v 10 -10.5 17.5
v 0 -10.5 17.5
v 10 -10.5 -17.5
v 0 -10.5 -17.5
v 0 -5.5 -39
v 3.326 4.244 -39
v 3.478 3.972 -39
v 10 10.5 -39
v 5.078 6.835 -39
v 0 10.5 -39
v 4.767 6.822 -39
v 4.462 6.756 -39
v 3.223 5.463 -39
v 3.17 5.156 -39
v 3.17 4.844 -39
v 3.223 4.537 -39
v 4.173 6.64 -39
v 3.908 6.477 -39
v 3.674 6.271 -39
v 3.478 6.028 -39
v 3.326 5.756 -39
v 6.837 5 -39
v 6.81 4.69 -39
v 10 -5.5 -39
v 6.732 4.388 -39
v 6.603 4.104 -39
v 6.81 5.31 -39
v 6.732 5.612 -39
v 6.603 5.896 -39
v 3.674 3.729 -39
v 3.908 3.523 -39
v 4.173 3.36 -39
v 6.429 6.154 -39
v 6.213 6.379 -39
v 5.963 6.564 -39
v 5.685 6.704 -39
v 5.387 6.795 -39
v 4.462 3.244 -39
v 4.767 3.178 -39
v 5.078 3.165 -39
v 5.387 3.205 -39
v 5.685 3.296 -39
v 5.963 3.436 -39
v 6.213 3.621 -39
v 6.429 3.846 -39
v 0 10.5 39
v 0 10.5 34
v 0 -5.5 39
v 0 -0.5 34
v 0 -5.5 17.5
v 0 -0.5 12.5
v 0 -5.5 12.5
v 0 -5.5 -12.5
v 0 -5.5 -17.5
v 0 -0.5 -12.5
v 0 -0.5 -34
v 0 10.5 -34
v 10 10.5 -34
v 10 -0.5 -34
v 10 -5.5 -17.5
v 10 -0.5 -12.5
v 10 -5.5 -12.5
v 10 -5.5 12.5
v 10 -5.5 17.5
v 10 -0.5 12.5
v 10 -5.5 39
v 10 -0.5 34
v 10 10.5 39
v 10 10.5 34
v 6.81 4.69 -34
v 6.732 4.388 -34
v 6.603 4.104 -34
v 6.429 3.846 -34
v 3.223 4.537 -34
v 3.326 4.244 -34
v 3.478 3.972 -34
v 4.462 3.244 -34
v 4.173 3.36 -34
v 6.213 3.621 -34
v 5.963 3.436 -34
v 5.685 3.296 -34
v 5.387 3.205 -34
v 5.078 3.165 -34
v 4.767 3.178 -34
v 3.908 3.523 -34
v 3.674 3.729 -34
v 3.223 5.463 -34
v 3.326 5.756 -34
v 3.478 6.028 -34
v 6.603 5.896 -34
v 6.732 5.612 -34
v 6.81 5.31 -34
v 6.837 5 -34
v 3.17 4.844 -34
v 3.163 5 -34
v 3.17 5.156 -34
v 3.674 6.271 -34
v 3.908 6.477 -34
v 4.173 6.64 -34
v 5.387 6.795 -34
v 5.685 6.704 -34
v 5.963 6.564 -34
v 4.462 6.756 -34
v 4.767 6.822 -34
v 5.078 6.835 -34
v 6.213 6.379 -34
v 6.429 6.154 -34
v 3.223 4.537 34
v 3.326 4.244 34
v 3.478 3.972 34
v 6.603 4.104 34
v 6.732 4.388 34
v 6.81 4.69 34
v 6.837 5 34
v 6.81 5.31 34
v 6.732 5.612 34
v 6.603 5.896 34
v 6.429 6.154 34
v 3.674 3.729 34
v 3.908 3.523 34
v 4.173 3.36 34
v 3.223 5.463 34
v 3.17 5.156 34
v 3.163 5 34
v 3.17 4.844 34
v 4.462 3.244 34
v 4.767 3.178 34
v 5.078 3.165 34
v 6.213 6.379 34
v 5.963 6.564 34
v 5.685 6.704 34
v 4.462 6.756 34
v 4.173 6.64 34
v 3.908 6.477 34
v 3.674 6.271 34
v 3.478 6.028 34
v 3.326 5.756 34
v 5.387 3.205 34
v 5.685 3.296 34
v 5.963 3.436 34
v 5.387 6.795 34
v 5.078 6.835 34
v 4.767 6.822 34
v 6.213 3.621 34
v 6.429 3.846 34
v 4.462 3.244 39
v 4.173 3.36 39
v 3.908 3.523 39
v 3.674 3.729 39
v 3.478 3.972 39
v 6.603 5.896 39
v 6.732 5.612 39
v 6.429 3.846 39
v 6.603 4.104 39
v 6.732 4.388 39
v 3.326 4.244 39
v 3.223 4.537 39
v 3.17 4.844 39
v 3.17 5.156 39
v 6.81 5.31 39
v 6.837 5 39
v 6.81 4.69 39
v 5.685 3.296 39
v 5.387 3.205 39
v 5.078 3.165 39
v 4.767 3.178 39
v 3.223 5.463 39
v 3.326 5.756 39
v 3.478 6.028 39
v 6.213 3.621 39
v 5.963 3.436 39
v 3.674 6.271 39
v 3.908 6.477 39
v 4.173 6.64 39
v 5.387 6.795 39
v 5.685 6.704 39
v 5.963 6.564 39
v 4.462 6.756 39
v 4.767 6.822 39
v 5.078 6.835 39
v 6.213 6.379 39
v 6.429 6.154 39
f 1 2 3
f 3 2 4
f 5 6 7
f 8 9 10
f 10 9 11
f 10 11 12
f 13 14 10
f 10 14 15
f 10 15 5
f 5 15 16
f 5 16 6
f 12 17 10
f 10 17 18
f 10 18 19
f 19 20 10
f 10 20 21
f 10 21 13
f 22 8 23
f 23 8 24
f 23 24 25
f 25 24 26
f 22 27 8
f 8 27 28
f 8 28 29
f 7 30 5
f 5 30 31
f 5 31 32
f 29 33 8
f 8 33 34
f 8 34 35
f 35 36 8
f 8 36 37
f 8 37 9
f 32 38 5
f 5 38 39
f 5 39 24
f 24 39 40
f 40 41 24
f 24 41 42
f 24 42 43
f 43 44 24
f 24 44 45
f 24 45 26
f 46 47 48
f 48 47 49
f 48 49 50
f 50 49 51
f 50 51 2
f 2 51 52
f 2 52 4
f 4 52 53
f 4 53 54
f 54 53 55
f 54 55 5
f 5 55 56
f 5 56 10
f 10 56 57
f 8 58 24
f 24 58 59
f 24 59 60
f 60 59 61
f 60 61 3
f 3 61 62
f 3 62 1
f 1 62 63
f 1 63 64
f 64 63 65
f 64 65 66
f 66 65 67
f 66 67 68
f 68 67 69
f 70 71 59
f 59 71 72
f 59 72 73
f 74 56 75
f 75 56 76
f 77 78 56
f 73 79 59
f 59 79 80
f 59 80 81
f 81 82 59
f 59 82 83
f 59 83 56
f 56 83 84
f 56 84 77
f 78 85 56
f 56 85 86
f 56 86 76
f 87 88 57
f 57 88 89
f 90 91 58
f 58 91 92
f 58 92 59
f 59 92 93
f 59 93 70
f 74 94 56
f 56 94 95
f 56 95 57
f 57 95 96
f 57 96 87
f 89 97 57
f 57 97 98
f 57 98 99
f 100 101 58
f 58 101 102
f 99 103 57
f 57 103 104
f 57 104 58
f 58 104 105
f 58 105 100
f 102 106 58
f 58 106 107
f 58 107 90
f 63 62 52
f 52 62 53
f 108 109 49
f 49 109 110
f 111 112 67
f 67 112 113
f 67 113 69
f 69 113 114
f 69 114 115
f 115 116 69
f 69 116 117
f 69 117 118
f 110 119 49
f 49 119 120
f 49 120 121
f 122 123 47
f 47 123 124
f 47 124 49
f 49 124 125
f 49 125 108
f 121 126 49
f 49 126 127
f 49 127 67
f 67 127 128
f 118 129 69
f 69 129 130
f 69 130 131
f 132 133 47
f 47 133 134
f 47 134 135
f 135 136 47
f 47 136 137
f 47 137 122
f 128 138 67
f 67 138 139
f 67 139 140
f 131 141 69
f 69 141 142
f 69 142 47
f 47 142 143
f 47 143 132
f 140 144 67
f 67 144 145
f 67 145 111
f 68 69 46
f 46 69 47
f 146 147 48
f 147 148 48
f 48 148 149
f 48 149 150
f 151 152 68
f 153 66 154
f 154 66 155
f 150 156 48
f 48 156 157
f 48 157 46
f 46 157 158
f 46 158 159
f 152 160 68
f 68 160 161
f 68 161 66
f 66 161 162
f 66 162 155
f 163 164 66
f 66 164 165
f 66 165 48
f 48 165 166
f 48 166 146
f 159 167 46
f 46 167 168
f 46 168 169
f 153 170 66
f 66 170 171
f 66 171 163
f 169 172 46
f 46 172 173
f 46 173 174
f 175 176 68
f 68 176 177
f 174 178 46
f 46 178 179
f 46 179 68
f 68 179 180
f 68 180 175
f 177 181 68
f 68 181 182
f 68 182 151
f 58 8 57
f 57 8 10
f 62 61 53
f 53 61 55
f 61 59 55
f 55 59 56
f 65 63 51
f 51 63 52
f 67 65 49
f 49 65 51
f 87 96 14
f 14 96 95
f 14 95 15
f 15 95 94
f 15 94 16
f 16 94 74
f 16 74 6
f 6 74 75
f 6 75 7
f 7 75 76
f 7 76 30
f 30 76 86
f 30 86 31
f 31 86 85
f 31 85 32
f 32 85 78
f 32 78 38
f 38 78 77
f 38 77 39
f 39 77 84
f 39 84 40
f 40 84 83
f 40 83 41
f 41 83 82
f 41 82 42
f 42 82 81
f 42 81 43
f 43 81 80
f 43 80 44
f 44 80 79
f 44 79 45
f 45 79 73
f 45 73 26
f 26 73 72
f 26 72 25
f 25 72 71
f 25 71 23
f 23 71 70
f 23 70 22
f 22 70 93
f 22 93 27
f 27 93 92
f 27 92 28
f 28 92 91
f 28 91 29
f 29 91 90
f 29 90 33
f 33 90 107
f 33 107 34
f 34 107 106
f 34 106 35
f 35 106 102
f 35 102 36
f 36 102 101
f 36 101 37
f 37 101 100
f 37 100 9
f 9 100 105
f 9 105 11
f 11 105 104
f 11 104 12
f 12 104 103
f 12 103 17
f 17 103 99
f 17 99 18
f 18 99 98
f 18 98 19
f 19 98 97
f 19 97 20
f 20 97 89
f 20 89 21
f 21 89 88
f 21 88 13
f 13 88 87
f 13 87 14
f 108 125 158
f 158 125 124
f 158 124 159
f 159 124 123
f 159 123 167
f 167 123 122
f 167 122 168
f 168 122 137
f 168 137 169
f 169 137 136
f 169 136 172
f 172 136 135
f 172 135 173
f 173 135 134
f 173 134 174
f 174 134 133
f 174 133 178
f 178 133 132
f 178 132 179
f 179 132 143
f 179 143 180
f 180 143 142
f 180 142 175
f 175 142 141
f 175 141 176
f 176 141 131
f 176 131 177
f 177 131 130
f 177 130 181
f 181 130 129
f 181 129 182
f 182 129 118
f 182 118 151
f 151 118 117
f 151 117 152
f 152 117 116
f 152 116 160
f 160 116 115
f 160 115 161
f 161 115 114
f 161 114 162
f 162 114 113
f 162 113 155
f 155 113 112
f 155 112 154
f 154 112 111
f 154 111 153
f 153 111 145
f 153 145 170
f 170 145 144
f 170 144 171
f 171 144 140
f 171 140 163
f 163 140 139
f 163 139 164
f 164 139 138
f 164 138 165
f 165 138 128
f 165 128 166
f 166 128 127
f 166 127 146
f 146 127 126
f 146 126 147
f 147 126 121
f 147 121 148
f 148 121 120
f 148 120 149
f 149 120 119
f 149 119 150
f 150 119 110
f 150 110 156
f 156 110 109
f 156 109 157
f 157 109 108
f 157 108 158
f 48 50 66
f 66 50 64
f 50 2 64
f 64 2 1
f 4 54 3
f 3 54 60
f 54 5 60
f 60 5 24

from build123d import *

# Parameters (mm, degrees)
SKETCH1_W               = 21.5
SKETCH1_H               = 5
BOSS_EXTRUDE1_DEPTH     = 10
CUT_EXTRUDE1_DEPTH      = 75.426137882
CUT_EXTRUDE1_DEPTH_BACK = 75.426137882
SKETCH2_R               = 1.836585915
SKETCH3_W               = 21.5
SKETCH3_H               = 5
CUT_EXTRUDE2_DEPTH      = 10


with BuildPart() as part:
    # Sketch1 → Boss-Extrude1 (new body)
    with BuildSketch(Plane(origin=(0, 0, 0), x_dir=(0, 0, -1), z_dir=(1, 0, 0))):
        Polygon((-39, 10.5), (-39, -10.5), (39, -10.5), (39, 10.5), (34, 10.5), (34, -0.5), (34, -5.5), (12.5, -5.5), (-12.5, -5.5), (-34, -5.5), (-34, -0.5), (-34, 10.5), align=None)
        with Locations((-23.25, -3)):
            Rectangle(SKETCH1_W, SKETCH1_H)
        with Locations((23.25, -3)):
            Rectangle(SKETCH1_W, SKETCH1_H)
    extrude(amount=BOSS_EXTRUDE1_DEPTH)

    # Sketch2 → Cut-Extrude1 (cut, two sides: drawn at the far end of the back side and taken through both)
    with BuildSketch(Plane.XY.offset(-34).offset(-CUT_EXTRUDE1_DEPTH_BACK)):
        with Locations((5, 5)):
            Circle(SKETCH2_R)
    extrude(amount=CUT_EXTRUDE1_DEPTH + CUT_EXTRUDE1_DEPTH_BACK, mode=Mode.SUBTRACT)

    # Sketch3 → Cut-Extrude2 (cut)
    with BuildSketch(Plane(origin=(10, 0, 0), x_dir=(0, 0, -1), z_dir=(1, 0, 0))):
        with Locations((-28.25, -8)):
            Rectangle(SKETCH3_W, SKETCH3_H)
    cut_extrude2 = extrude(amount=-CUT_EXTRUDE2_DEPTH, mode=Mode.SUBTRACT)

    # Mirror1: Cut-Extrude2 across plane
    add(cut_extrude2.mirror(Plane.XY), mode=Mode.SUBTRACT)


solid = part.part
